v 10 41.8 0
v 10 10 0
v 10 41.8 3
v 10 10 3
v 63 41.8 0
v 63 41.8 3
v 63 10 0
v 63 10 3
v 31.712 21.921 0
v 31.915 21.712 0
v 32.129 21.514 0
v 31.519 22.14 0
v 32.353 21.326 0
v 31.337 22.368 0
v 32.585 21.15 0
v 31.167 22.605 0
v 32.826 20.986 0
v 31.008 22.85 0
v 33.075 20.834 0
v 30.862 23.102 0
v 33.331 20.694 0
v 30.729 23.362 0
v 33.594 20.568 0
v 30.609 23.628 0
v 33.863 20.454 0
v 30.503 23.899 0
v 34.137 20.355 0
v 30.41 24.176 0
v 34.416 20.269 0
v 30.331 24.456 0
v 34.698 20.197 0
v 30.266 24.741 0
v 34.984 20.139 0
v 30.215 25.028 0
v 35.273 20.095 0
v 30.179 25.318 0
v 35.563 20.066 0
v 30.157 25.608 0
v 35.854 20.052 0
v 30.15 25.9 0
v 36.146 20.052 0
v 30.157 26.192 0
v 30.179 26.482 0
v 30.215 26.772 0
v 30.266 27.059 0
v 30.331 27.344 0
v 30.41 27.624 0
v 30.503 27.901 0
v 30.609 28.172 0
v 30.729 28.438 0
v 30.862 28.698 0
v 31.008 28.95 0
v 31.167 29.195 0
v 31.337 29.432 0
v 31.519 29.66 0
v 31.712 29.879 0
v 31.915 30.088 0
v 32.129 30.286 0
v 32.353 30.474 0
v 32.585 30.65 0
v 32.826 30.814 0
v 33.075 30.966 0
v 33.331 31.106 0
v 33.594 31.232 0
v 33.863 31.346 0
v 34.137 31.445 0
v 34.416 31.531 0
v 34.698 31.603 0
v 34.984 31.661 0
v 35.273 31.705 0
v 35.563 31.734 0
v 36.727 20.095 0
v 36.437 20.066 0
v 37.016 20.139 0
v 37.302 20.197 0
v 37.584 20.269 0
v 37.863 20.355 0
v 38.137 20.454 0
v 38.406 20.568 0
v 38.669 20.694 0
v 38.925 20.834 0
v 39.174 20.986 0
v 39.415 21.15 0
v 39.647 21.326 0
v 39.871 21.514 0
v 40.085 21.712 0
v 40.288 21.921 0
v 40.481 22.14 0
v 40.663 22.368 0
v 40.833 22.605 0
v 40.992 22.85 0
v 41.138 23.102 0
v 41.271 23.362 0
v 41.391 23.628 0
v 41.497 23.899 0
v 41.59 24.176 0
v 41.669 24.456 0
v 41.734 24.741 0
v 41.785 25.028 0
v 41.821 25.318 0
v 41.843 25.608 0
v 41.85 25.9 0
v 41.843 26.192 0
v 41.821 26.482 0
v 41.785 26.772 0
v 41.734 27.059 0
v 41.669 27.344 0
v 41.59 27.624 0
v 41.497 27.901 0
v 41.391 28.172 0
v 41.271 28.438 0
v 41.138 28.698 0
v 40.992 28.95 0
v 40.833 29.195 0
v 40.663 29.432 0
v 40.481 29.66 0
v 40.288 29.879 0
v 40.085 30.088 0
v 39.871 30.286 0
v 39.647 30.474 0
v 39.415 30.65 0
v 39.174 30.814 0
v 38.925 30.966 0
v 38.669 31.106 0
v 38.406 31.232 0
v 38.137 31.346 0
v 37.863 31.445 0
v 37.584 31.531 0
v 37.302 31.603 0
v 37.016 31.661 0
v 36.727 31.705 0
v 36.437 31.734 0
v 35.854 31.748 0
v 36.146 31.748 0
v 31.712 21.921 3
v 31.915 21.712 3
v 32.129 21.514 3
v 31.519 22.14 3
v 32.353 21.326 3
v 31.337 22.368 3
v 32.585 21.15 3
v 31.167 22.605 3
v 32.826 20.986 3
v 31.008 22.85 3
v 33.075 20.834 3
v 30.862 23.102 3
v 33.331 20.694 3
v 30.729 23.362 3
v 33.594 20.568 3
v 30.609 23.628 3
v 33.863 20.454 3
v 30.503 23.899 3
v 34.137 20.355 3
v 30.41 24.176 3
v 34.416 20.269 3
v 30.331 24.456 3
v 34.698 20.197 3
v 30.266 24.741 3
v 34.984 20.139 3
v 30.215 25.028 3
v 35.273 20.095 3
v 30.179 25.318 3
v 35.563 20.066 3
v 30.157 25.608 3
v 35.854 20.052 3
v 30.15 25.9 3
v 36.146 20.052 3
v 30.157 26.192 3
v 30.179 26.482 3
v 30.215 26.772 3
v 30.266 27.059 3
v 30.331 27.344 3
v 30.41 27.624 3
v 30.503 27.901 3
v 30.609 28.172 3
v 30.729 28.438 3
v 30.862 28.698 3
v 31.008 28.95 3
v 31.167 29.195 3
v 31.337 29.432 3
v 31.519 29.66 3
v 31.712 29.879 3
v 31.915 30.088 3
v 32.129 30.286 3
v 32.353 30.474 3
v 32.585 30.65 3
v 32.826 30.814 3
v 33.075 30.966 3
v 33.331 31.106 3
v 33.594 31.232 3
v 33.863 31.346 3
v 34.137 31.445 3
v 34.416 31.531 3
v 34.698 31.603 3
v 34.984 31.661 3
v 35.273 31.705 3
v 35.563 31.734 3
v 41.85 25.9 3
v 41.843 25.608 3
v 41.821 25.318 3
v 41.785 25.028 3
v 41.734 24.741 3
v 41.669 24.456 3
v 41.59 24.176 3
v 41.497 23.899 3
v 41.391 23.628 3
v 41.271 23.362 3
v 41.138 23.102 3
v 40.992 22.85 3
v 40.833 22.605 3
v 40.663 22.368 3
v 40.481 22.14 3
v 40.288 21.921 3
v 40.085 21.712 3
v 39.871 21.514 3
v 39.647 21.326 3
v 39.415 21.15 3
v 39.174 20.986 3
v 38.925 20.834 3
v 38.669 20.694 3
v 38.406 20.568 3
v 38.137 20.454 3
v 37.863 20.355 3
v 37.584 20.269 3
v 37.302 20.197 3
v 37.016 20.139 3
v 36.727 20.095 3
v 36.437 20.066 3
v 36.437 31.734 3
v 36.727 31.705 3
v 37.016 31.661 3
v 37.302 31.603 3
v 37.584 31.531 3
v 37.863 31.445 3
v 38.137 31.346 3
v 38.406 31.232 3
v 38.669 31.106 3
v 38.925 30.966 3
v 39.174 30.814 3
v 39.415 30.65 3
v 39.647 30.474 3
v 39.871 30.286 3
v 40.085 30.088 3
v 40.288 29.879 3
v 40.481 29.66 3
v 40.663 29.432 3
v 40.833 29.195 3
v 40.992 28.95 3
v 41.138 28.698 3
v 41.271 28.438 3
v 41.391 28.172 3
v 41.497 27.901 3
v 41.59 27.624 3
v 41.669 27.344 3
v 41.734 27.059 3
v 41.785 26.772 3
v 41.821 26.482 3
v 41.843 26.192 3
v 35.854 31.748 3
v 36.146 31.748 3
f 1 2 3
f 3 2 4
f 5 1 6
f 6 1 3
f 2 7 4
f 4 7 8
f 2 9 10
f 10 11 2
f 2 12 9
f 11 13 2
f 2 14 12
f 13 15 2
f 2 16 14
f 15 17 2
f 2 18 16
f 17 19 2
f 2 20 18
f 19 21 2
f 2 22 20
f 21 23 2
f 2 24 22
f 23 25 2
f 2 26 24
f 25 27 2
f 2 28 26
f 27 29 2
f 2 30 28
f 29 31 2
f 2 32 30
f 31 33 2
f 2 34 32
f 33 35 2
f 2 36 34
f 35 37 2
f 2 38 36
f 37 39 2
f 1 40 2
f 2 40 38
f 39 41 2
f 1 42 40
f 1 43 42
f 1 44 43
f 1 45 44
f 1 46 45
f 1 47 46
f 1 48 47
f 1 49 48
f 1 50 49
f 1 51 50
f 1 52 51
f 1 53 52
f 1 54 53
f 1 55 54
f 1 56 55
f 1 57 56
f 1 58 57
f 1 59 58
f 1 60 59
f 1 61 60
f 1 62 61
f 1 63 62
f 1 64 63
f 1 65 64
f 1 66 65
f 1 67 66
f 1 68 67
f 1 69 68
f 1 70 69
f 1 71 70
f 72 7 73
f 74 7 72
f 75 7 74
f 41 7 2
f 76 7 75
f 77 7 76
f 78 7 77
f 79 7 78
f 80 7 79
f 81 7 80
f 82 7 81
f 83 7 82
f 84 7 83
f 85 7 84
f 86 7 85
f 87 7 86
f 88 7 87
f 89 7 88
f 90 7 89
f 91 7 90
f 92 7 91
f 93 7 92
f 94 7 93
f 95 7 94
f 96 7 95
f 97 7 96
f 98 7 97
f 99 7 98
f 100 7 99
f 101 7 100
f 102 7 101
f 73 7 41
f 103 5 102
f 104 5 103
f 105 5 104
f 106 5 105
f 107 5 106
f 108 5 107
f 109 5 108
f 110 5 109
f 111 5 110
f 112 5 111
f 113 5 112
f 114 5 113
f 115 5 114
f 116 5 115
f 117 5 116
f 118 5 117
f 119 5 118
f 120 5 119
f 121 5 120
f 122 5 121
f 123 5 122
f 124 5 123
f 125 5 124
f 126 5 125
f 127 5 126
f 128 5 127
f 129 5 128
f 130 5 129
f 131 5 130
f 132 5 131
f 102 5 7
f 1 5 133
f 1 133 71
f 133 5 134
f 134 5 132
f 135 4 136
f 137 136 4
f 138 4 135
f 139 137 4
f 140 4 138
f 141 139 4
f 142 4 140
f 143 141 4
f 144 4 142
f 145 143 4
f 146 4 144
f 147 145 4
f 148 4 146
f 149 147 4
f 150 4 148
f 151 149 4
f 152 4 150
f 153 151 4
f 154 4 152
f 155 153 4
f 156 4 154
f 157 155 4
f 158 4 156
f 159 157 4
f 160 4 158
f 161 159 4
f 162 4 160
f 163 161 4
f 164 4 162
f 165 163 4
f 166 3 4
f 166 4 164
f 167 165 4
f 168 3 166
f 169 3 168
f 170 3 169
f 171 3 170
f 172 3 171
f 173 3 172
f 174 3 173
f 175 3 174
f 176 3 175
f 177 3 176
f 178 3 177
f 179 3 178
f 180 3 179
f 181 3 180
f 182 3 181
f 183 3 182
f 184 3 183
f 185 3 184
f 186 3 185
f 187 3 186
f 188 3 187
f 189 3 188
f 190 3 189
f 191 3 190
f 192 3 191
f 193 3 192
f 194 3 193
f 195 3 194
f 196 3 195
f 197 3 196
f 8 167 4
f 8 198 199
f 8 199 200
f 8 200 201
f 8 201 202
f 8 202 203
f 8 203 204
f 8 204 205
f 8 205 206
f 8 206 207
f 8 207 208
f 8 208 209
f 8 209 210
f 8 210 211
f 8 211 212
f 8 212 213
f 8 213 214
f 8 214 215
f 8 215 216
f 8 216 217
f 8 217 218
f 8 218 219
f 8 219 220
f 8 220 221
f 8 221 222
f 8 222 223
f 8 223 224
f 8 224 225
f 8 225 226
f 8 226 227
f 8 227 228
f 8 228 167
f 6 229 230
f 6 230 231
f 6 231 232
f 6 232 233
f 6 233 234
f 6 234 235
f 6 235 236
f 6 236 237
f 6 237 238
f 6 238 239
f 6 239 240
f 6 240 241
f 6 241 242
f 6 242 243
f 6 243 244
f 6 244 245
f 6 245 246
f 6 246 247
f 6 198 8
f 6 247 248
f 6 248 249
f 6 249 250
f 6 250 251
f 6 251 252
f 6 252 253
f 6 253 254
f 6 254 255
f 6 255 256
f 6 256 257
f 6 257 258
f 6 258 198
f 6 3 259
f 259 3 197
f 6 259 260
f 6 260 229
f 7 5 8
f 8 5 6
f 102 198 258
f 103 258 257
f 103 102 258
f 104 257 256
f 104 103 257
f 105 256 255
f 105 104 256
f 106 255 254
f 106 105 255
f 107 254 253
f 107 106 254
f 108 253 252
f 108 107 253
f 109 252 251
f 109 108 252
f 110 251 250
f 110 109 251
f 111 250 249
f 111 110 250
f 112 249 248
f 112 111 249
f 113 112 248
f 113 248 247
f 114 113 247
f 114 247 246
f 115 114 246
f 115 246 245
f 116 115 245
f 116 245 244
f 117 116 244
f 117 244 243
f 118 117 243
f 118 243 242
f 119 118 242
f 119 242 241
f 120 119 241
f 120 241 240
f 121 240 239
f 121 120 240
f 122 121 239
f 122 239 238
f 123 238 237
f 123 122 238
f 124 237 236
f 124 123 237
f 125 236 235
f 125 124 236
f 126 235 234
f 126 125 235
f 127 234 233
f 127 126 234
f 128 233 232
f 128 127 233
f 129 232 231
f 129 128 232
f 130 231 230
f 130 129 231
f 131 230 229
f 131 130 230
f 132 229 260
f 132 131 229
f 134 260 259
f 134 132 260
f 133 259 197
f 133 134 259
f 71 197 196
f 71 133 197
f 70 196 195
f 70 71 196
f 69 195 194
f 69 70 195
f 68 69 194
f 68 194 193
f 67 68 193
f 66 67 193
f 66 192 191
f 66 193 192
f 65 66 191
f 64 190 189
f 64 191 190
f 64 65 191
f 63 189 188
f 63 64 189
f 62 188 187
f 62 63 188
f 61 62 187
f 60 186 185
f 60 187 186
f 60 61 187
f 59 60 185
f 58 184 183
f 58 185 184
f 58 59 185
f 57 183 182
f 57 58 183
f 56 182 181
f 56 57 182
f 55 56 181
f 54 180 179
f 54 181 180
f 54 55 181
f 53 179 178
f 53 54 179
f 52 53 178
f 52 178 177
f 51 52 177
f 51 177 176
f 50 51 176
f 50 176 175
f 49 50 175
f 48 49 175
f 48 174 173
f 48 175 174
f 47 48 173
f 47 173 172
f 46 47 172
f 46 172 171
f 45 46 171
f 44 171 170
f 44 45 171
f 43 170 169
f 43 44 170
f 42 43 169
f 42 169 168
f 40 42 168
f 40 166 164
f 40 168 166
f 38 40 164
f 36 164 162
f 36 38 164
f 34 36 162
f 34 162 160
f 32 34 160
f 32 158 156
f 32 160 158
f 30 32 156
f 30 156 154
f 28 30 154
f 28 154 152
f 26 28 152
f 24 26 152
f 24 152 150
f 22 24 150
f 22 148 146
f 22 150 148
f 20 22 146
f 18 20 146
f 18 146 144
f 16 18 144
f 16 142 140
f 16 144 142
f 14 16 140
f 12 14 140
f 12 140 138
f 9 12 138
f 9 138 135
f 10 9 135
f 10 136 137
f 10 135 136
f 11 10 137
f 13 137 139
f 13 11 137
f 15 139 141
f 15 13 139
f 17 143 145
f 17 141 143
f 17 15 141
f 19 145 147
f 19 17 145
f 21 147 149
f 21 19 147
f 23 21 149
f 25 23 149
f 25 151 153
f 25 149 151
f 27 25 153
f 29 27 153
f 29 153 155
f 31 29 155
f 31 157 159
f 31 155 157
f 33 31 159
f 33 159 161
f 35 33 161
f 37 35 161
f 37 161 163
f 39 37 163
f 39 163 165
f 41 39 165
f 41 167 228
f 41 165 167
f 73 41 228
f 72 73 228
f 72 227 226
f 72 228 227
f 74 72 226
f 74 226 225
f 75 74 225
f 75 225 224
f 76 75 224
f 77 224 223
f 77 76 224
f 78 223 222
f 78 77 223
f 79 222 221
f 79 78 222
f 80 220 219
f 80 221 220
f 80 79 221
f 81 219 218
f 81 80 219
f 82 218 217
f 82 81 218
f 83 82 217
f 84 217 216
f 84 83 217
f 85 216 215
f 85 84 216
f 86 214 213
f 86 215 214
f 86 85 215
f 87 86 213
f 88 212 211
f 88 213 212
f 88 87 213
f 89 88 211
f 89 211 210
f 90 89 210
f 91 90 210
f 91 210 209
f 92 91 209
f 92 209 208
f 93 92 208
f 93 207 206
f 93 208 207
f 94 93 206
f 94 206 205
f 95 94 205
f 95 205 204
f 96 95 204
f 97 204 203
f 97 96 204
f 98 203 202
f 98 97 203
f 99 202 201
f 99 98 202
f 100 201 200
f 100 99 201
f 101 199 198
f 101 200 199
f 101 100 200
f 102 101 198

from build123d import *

# Parameters (mm, degrees)
SKETCH_W     = 53
SKETCH_H     = 31.8
PAD_DEPTH    = 3
SKETCH001_R  = 5.85
POCKET_DEPTH = 3.001


with BuildPart() as part:
    # Sketch → Pad (new body)
    with BuildSketch(Plane.XY):
        with Locations((36.5, 25.9)):
            Rectangle(SKETCH_W, SKETCH_H)
    extrude(amount=PAD_DEPTH)

    # Sketch001 → Pocket (cut, through all)
    with BuildSketch(Plane.XY):
        with Locations((36, 25.9)):
            Circle(SKETCH001_R)
    extrude(amount=POCKET_DEPTH, mode=Mode.SUBTRACT)


solid = part.part
